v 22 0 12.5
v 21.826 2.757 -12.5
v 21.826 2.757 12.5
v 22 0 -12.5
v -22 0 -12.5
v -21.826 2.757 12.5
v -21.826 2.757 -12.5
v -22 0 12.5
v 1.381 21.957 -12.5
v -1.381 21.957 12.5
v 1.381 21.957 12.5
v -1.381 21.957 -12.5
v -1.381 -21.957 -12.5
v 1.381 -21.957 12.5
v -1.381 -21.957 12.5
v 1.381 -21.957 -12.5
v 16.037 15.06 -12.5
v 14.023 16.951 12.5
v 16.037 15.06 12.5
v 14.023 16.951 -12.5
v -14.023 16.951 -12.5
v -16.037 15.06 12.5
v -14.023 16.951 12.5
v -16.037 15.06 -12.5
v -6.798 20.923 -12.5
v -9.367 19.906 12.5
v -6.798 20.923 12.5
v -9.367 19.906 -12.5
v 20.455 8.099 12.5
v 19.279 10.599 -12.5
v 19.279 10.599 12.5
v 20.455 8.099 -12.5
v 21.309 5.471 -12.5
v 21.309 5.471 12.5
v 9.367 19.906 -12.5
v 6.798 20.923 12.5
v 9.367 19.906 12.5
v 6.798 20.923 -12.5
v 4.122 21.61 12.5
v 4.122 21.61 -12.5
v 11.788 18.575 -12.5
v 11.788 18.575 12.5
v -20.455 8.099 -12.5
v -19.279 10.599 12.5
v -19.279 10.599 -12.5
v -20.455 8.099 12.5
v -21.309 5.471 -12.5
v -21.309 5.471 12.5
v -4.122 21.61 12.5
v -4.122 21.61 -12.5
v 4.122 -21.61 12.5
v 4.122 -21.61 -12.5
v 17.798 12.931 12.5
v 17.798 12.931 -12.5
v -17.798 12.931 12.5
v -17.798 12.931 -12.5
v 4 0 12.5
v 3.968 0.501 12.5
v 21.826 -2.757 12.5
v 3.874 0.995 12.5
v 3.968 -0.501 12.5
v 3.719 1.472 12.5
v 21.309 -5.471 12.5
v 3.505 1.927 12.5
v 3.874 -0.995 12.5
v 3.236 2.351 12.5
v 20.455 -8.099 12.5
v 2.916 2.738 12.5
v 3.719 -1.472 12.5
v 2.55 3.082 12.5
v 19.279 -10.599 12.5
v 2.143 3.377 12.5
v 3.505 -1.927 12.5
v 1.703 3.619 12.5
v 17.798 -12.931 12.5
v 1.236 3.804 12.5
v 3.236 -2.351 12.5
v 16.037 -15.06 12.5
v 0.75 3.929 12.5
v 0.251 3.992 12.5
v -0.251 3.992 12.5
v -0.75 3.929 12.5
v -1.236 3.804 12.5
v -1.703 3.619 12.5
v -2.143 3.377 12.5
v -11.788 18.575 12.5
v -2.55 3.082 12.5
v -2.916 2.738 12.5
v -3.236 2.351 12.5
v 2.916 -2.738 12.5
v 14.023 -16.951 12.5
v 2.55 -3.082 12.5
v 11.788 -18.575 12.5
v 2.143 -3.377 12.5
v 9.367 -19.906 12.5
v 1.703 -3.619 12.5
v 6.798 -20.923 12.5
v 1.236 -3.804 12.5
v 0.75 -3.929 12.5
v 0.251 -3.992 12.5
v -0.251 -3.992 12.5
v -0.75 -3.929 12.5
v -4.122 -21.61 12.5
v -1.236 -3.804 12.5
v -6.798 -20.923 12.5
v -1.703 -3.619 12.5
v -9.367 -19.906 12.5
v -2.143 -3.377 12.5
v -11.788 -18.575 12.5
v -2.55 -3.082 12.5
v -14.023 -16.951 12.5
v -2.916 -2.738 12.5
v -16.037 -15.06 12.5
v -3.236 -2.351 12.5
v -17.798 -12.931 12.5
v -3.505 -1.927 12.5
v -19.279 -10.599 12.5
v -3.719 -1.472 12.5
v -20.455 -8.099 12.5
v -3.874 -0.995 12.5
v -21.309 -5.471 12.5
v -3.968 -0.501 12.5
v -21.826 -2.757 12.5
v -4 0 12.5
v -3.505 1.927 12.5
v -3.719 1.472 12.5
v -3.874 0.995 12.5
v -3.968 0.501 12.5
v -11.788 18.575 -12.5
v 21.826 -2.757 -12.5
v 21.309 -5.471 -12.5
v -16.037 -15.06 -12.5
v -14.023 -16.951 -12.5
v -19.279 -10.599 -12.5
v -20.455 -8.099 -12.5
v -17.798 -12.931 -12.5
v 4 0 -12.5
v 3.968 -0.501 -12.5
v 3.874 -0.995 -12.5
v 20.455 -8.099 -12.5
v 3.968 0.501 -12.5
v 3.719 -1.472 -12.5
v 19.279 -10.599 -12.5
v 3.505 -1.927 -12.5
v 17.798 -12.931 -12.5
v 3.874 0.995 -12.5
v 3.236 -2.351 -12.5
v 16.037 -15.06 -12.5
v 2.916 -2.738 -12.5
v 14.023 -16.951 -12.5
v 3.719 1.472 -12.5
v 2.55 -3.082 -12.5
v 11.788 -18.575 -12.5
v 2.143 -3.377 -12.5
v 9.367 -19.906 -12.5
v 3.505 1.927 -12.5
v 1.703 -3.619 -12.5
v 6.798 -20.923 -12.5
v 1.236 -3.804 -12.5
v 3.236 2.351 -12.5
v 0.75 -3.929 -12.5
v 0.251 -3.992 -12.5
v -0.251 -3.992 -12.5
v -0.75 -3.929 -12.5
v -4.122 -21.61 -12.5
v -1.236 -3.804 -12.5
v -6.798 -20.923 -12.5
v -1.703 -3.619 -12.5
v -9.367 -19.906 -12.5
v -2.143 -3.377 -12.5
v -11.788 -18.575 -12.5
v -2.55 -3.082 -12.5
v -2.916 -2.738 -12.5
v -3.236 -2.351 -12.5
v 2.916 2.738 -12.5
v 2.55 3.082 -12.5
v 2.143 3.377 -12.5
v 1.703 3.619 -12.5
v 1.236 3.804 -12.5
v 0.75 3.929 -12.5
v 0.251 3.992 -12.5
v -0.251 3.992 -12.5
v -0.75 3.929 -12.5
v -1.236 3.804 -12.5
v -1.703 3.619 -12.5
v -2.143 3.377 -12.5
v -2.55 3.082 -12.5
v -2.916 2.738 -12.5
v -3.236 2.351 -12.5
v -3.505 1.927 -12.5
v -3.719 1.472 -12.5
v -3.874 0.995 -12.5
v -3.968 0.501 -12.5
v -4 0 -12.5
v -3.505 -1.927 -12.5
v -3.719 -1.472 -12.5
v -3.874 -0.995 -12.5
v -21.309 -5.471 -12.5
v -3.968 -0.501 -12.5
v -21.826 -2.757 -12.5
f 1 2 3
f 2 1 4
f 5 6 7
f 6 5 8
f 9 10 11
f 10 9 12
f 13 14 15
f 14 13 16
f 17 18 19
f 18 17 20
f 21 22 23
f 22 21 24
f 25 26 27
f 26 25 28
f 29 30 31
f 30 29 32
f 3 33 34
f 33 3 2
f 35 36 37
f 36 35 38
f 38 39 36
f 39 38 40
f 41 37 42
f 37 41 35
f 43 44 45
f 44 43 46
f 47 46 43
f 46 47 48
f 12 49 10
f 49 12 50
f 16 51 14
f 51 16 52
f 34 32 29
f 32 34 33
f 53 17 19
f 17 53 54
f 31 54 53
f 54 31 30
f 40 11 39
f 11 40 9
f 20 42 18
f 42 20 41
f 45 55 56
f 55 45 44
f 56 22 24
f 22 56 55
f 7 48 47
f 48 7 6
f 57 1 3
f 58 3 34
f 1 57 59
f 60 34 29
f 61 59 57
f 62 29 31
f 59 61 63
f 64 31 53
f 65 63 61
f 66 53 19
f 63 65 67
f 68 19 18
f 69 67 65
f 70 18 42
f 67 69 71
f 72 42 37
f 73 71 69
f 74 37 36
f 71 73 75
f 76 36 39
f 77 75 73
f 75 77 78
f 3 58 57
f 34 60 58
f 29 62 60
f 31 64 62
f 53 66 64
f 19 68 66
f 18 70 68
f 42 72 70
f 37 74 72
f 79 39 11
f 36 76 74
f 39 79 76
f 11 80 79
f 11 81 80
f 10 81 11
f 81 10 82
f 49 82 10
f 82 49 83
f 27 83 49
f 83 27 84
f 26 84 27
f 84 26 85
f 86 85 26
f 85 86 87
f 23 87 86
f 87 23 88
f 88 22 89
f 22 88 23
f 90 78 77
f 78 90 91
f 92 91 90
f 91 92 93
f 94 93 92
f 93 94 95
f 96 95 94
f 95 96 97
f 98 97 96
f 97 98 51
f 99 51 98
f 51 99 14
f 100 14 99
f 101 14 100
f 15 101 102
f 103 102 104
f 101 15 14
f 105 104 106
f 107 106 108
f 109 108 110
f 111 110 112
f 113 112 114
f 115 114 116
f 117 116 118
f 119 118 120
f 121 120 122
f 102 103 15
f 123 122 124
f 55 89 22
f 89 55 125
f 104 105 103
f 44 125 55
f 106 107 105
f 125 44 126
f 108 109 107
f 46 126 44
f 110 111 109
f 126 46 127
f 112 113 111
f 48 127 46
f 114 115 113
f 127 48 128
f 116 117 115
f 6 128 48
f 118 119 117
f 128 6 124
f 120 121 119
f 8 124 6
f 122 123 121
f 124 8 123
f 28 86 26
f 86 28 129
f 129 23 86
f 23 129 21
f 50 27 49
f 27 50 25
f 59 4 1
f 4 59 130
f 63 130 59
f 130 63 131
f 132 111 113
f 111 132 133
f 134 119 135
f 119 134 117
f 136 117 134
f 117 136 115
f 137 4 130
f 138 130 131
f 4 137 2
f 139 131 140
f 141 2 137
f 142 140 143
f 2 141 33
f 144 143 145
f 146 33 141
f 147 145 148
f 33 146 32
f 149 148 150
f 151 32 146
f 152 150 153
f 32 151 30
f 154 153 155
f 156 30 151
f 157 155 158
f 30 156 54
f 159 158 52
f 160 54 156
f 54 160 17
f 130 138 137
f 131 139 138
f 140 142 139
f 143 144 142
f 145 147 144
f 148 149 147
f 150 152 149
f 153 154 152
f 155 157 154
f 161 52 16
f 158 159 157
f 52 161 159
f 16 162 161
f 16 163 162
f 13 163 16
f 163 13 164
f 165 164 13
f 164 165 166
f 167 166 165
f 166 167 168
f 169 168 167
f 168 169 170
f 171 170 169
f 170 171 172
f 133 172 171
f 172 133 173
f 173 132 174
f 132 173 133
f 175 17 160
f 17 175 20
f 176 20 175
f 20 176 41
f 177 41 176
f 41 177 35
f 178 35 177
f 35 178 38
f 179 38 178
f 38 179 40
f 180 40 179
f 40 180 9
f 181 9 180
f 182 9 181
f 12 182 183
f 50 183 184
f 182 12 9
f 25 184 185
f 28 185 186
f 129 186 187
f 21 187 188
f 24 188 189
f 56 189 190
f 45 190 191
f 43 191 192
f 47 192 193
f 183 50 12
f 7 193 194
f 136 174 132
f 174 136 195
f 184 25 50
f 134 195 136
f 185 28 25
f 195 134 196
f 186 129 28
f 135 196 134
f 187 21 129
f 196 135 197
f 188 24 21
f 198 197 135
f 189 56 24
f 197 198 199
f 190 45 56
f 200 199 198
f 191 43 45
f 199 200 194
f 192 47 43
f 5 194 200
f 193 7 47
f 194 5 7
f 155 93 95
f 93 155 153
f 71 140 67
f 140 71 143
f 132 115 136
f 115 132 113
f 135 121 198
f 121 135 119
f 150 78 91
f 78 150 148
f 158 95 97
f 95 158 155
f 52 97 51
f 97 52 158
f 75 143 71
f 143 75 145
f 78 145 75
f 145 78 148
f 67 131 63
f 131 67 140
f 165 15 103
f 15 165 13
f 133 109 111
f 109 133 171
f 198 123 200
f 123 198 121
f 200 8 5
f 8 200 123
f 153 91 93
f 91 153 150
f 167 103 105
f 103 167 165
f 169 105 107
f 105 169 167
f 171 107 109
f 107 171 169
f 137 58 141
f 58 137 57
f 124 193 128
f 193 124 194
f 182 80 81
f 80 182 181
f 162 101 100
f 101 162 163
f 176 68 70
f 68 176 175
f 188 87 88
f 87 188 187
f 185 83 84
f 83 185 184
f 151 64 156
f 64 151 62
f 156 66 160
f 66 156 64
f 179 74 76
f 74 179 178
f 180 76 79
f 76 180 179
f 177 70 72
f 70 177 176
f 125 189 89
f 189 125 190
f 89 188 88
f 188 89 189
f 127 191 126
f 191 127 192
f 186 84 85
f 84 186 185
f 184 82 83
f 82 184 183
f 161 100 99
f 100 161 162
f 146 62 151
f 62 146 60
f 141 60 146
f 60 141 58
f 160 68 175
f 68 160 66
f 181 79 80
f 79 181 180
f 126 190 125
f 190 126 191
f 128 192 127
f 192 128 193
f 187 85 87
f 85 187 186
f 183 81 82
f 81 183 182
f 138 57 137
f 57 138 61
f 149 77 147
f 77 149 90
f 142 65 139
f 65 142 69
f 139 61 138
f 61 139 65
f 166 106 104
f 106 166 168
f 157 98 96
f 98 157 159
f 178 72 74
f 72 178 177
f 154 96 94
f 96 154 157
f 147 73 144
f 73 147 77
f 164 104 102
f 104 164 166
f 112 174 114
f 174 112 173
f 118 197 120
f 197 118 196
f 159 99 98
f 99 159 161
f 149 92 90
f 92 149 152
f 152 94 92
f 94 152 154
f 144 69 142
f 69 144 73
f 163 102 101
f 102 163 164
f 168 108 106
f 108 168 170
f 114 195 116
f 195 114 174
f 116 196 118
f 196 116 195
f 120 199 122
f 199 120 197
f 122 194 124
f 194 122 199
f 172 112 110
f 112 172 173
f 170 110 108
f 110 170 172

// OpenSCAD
$fn = 50;


difference() {
	union() {
		translate(v = [0, 0, -12.5000000000]) {
			cylinder(h = 25, r = 22.0000000000);
		}
	}
	union() {
		translate(v = [0, 0, -100.0000000000]) {
			cylinder(h = 200, r = 4);
		}
	}
}
